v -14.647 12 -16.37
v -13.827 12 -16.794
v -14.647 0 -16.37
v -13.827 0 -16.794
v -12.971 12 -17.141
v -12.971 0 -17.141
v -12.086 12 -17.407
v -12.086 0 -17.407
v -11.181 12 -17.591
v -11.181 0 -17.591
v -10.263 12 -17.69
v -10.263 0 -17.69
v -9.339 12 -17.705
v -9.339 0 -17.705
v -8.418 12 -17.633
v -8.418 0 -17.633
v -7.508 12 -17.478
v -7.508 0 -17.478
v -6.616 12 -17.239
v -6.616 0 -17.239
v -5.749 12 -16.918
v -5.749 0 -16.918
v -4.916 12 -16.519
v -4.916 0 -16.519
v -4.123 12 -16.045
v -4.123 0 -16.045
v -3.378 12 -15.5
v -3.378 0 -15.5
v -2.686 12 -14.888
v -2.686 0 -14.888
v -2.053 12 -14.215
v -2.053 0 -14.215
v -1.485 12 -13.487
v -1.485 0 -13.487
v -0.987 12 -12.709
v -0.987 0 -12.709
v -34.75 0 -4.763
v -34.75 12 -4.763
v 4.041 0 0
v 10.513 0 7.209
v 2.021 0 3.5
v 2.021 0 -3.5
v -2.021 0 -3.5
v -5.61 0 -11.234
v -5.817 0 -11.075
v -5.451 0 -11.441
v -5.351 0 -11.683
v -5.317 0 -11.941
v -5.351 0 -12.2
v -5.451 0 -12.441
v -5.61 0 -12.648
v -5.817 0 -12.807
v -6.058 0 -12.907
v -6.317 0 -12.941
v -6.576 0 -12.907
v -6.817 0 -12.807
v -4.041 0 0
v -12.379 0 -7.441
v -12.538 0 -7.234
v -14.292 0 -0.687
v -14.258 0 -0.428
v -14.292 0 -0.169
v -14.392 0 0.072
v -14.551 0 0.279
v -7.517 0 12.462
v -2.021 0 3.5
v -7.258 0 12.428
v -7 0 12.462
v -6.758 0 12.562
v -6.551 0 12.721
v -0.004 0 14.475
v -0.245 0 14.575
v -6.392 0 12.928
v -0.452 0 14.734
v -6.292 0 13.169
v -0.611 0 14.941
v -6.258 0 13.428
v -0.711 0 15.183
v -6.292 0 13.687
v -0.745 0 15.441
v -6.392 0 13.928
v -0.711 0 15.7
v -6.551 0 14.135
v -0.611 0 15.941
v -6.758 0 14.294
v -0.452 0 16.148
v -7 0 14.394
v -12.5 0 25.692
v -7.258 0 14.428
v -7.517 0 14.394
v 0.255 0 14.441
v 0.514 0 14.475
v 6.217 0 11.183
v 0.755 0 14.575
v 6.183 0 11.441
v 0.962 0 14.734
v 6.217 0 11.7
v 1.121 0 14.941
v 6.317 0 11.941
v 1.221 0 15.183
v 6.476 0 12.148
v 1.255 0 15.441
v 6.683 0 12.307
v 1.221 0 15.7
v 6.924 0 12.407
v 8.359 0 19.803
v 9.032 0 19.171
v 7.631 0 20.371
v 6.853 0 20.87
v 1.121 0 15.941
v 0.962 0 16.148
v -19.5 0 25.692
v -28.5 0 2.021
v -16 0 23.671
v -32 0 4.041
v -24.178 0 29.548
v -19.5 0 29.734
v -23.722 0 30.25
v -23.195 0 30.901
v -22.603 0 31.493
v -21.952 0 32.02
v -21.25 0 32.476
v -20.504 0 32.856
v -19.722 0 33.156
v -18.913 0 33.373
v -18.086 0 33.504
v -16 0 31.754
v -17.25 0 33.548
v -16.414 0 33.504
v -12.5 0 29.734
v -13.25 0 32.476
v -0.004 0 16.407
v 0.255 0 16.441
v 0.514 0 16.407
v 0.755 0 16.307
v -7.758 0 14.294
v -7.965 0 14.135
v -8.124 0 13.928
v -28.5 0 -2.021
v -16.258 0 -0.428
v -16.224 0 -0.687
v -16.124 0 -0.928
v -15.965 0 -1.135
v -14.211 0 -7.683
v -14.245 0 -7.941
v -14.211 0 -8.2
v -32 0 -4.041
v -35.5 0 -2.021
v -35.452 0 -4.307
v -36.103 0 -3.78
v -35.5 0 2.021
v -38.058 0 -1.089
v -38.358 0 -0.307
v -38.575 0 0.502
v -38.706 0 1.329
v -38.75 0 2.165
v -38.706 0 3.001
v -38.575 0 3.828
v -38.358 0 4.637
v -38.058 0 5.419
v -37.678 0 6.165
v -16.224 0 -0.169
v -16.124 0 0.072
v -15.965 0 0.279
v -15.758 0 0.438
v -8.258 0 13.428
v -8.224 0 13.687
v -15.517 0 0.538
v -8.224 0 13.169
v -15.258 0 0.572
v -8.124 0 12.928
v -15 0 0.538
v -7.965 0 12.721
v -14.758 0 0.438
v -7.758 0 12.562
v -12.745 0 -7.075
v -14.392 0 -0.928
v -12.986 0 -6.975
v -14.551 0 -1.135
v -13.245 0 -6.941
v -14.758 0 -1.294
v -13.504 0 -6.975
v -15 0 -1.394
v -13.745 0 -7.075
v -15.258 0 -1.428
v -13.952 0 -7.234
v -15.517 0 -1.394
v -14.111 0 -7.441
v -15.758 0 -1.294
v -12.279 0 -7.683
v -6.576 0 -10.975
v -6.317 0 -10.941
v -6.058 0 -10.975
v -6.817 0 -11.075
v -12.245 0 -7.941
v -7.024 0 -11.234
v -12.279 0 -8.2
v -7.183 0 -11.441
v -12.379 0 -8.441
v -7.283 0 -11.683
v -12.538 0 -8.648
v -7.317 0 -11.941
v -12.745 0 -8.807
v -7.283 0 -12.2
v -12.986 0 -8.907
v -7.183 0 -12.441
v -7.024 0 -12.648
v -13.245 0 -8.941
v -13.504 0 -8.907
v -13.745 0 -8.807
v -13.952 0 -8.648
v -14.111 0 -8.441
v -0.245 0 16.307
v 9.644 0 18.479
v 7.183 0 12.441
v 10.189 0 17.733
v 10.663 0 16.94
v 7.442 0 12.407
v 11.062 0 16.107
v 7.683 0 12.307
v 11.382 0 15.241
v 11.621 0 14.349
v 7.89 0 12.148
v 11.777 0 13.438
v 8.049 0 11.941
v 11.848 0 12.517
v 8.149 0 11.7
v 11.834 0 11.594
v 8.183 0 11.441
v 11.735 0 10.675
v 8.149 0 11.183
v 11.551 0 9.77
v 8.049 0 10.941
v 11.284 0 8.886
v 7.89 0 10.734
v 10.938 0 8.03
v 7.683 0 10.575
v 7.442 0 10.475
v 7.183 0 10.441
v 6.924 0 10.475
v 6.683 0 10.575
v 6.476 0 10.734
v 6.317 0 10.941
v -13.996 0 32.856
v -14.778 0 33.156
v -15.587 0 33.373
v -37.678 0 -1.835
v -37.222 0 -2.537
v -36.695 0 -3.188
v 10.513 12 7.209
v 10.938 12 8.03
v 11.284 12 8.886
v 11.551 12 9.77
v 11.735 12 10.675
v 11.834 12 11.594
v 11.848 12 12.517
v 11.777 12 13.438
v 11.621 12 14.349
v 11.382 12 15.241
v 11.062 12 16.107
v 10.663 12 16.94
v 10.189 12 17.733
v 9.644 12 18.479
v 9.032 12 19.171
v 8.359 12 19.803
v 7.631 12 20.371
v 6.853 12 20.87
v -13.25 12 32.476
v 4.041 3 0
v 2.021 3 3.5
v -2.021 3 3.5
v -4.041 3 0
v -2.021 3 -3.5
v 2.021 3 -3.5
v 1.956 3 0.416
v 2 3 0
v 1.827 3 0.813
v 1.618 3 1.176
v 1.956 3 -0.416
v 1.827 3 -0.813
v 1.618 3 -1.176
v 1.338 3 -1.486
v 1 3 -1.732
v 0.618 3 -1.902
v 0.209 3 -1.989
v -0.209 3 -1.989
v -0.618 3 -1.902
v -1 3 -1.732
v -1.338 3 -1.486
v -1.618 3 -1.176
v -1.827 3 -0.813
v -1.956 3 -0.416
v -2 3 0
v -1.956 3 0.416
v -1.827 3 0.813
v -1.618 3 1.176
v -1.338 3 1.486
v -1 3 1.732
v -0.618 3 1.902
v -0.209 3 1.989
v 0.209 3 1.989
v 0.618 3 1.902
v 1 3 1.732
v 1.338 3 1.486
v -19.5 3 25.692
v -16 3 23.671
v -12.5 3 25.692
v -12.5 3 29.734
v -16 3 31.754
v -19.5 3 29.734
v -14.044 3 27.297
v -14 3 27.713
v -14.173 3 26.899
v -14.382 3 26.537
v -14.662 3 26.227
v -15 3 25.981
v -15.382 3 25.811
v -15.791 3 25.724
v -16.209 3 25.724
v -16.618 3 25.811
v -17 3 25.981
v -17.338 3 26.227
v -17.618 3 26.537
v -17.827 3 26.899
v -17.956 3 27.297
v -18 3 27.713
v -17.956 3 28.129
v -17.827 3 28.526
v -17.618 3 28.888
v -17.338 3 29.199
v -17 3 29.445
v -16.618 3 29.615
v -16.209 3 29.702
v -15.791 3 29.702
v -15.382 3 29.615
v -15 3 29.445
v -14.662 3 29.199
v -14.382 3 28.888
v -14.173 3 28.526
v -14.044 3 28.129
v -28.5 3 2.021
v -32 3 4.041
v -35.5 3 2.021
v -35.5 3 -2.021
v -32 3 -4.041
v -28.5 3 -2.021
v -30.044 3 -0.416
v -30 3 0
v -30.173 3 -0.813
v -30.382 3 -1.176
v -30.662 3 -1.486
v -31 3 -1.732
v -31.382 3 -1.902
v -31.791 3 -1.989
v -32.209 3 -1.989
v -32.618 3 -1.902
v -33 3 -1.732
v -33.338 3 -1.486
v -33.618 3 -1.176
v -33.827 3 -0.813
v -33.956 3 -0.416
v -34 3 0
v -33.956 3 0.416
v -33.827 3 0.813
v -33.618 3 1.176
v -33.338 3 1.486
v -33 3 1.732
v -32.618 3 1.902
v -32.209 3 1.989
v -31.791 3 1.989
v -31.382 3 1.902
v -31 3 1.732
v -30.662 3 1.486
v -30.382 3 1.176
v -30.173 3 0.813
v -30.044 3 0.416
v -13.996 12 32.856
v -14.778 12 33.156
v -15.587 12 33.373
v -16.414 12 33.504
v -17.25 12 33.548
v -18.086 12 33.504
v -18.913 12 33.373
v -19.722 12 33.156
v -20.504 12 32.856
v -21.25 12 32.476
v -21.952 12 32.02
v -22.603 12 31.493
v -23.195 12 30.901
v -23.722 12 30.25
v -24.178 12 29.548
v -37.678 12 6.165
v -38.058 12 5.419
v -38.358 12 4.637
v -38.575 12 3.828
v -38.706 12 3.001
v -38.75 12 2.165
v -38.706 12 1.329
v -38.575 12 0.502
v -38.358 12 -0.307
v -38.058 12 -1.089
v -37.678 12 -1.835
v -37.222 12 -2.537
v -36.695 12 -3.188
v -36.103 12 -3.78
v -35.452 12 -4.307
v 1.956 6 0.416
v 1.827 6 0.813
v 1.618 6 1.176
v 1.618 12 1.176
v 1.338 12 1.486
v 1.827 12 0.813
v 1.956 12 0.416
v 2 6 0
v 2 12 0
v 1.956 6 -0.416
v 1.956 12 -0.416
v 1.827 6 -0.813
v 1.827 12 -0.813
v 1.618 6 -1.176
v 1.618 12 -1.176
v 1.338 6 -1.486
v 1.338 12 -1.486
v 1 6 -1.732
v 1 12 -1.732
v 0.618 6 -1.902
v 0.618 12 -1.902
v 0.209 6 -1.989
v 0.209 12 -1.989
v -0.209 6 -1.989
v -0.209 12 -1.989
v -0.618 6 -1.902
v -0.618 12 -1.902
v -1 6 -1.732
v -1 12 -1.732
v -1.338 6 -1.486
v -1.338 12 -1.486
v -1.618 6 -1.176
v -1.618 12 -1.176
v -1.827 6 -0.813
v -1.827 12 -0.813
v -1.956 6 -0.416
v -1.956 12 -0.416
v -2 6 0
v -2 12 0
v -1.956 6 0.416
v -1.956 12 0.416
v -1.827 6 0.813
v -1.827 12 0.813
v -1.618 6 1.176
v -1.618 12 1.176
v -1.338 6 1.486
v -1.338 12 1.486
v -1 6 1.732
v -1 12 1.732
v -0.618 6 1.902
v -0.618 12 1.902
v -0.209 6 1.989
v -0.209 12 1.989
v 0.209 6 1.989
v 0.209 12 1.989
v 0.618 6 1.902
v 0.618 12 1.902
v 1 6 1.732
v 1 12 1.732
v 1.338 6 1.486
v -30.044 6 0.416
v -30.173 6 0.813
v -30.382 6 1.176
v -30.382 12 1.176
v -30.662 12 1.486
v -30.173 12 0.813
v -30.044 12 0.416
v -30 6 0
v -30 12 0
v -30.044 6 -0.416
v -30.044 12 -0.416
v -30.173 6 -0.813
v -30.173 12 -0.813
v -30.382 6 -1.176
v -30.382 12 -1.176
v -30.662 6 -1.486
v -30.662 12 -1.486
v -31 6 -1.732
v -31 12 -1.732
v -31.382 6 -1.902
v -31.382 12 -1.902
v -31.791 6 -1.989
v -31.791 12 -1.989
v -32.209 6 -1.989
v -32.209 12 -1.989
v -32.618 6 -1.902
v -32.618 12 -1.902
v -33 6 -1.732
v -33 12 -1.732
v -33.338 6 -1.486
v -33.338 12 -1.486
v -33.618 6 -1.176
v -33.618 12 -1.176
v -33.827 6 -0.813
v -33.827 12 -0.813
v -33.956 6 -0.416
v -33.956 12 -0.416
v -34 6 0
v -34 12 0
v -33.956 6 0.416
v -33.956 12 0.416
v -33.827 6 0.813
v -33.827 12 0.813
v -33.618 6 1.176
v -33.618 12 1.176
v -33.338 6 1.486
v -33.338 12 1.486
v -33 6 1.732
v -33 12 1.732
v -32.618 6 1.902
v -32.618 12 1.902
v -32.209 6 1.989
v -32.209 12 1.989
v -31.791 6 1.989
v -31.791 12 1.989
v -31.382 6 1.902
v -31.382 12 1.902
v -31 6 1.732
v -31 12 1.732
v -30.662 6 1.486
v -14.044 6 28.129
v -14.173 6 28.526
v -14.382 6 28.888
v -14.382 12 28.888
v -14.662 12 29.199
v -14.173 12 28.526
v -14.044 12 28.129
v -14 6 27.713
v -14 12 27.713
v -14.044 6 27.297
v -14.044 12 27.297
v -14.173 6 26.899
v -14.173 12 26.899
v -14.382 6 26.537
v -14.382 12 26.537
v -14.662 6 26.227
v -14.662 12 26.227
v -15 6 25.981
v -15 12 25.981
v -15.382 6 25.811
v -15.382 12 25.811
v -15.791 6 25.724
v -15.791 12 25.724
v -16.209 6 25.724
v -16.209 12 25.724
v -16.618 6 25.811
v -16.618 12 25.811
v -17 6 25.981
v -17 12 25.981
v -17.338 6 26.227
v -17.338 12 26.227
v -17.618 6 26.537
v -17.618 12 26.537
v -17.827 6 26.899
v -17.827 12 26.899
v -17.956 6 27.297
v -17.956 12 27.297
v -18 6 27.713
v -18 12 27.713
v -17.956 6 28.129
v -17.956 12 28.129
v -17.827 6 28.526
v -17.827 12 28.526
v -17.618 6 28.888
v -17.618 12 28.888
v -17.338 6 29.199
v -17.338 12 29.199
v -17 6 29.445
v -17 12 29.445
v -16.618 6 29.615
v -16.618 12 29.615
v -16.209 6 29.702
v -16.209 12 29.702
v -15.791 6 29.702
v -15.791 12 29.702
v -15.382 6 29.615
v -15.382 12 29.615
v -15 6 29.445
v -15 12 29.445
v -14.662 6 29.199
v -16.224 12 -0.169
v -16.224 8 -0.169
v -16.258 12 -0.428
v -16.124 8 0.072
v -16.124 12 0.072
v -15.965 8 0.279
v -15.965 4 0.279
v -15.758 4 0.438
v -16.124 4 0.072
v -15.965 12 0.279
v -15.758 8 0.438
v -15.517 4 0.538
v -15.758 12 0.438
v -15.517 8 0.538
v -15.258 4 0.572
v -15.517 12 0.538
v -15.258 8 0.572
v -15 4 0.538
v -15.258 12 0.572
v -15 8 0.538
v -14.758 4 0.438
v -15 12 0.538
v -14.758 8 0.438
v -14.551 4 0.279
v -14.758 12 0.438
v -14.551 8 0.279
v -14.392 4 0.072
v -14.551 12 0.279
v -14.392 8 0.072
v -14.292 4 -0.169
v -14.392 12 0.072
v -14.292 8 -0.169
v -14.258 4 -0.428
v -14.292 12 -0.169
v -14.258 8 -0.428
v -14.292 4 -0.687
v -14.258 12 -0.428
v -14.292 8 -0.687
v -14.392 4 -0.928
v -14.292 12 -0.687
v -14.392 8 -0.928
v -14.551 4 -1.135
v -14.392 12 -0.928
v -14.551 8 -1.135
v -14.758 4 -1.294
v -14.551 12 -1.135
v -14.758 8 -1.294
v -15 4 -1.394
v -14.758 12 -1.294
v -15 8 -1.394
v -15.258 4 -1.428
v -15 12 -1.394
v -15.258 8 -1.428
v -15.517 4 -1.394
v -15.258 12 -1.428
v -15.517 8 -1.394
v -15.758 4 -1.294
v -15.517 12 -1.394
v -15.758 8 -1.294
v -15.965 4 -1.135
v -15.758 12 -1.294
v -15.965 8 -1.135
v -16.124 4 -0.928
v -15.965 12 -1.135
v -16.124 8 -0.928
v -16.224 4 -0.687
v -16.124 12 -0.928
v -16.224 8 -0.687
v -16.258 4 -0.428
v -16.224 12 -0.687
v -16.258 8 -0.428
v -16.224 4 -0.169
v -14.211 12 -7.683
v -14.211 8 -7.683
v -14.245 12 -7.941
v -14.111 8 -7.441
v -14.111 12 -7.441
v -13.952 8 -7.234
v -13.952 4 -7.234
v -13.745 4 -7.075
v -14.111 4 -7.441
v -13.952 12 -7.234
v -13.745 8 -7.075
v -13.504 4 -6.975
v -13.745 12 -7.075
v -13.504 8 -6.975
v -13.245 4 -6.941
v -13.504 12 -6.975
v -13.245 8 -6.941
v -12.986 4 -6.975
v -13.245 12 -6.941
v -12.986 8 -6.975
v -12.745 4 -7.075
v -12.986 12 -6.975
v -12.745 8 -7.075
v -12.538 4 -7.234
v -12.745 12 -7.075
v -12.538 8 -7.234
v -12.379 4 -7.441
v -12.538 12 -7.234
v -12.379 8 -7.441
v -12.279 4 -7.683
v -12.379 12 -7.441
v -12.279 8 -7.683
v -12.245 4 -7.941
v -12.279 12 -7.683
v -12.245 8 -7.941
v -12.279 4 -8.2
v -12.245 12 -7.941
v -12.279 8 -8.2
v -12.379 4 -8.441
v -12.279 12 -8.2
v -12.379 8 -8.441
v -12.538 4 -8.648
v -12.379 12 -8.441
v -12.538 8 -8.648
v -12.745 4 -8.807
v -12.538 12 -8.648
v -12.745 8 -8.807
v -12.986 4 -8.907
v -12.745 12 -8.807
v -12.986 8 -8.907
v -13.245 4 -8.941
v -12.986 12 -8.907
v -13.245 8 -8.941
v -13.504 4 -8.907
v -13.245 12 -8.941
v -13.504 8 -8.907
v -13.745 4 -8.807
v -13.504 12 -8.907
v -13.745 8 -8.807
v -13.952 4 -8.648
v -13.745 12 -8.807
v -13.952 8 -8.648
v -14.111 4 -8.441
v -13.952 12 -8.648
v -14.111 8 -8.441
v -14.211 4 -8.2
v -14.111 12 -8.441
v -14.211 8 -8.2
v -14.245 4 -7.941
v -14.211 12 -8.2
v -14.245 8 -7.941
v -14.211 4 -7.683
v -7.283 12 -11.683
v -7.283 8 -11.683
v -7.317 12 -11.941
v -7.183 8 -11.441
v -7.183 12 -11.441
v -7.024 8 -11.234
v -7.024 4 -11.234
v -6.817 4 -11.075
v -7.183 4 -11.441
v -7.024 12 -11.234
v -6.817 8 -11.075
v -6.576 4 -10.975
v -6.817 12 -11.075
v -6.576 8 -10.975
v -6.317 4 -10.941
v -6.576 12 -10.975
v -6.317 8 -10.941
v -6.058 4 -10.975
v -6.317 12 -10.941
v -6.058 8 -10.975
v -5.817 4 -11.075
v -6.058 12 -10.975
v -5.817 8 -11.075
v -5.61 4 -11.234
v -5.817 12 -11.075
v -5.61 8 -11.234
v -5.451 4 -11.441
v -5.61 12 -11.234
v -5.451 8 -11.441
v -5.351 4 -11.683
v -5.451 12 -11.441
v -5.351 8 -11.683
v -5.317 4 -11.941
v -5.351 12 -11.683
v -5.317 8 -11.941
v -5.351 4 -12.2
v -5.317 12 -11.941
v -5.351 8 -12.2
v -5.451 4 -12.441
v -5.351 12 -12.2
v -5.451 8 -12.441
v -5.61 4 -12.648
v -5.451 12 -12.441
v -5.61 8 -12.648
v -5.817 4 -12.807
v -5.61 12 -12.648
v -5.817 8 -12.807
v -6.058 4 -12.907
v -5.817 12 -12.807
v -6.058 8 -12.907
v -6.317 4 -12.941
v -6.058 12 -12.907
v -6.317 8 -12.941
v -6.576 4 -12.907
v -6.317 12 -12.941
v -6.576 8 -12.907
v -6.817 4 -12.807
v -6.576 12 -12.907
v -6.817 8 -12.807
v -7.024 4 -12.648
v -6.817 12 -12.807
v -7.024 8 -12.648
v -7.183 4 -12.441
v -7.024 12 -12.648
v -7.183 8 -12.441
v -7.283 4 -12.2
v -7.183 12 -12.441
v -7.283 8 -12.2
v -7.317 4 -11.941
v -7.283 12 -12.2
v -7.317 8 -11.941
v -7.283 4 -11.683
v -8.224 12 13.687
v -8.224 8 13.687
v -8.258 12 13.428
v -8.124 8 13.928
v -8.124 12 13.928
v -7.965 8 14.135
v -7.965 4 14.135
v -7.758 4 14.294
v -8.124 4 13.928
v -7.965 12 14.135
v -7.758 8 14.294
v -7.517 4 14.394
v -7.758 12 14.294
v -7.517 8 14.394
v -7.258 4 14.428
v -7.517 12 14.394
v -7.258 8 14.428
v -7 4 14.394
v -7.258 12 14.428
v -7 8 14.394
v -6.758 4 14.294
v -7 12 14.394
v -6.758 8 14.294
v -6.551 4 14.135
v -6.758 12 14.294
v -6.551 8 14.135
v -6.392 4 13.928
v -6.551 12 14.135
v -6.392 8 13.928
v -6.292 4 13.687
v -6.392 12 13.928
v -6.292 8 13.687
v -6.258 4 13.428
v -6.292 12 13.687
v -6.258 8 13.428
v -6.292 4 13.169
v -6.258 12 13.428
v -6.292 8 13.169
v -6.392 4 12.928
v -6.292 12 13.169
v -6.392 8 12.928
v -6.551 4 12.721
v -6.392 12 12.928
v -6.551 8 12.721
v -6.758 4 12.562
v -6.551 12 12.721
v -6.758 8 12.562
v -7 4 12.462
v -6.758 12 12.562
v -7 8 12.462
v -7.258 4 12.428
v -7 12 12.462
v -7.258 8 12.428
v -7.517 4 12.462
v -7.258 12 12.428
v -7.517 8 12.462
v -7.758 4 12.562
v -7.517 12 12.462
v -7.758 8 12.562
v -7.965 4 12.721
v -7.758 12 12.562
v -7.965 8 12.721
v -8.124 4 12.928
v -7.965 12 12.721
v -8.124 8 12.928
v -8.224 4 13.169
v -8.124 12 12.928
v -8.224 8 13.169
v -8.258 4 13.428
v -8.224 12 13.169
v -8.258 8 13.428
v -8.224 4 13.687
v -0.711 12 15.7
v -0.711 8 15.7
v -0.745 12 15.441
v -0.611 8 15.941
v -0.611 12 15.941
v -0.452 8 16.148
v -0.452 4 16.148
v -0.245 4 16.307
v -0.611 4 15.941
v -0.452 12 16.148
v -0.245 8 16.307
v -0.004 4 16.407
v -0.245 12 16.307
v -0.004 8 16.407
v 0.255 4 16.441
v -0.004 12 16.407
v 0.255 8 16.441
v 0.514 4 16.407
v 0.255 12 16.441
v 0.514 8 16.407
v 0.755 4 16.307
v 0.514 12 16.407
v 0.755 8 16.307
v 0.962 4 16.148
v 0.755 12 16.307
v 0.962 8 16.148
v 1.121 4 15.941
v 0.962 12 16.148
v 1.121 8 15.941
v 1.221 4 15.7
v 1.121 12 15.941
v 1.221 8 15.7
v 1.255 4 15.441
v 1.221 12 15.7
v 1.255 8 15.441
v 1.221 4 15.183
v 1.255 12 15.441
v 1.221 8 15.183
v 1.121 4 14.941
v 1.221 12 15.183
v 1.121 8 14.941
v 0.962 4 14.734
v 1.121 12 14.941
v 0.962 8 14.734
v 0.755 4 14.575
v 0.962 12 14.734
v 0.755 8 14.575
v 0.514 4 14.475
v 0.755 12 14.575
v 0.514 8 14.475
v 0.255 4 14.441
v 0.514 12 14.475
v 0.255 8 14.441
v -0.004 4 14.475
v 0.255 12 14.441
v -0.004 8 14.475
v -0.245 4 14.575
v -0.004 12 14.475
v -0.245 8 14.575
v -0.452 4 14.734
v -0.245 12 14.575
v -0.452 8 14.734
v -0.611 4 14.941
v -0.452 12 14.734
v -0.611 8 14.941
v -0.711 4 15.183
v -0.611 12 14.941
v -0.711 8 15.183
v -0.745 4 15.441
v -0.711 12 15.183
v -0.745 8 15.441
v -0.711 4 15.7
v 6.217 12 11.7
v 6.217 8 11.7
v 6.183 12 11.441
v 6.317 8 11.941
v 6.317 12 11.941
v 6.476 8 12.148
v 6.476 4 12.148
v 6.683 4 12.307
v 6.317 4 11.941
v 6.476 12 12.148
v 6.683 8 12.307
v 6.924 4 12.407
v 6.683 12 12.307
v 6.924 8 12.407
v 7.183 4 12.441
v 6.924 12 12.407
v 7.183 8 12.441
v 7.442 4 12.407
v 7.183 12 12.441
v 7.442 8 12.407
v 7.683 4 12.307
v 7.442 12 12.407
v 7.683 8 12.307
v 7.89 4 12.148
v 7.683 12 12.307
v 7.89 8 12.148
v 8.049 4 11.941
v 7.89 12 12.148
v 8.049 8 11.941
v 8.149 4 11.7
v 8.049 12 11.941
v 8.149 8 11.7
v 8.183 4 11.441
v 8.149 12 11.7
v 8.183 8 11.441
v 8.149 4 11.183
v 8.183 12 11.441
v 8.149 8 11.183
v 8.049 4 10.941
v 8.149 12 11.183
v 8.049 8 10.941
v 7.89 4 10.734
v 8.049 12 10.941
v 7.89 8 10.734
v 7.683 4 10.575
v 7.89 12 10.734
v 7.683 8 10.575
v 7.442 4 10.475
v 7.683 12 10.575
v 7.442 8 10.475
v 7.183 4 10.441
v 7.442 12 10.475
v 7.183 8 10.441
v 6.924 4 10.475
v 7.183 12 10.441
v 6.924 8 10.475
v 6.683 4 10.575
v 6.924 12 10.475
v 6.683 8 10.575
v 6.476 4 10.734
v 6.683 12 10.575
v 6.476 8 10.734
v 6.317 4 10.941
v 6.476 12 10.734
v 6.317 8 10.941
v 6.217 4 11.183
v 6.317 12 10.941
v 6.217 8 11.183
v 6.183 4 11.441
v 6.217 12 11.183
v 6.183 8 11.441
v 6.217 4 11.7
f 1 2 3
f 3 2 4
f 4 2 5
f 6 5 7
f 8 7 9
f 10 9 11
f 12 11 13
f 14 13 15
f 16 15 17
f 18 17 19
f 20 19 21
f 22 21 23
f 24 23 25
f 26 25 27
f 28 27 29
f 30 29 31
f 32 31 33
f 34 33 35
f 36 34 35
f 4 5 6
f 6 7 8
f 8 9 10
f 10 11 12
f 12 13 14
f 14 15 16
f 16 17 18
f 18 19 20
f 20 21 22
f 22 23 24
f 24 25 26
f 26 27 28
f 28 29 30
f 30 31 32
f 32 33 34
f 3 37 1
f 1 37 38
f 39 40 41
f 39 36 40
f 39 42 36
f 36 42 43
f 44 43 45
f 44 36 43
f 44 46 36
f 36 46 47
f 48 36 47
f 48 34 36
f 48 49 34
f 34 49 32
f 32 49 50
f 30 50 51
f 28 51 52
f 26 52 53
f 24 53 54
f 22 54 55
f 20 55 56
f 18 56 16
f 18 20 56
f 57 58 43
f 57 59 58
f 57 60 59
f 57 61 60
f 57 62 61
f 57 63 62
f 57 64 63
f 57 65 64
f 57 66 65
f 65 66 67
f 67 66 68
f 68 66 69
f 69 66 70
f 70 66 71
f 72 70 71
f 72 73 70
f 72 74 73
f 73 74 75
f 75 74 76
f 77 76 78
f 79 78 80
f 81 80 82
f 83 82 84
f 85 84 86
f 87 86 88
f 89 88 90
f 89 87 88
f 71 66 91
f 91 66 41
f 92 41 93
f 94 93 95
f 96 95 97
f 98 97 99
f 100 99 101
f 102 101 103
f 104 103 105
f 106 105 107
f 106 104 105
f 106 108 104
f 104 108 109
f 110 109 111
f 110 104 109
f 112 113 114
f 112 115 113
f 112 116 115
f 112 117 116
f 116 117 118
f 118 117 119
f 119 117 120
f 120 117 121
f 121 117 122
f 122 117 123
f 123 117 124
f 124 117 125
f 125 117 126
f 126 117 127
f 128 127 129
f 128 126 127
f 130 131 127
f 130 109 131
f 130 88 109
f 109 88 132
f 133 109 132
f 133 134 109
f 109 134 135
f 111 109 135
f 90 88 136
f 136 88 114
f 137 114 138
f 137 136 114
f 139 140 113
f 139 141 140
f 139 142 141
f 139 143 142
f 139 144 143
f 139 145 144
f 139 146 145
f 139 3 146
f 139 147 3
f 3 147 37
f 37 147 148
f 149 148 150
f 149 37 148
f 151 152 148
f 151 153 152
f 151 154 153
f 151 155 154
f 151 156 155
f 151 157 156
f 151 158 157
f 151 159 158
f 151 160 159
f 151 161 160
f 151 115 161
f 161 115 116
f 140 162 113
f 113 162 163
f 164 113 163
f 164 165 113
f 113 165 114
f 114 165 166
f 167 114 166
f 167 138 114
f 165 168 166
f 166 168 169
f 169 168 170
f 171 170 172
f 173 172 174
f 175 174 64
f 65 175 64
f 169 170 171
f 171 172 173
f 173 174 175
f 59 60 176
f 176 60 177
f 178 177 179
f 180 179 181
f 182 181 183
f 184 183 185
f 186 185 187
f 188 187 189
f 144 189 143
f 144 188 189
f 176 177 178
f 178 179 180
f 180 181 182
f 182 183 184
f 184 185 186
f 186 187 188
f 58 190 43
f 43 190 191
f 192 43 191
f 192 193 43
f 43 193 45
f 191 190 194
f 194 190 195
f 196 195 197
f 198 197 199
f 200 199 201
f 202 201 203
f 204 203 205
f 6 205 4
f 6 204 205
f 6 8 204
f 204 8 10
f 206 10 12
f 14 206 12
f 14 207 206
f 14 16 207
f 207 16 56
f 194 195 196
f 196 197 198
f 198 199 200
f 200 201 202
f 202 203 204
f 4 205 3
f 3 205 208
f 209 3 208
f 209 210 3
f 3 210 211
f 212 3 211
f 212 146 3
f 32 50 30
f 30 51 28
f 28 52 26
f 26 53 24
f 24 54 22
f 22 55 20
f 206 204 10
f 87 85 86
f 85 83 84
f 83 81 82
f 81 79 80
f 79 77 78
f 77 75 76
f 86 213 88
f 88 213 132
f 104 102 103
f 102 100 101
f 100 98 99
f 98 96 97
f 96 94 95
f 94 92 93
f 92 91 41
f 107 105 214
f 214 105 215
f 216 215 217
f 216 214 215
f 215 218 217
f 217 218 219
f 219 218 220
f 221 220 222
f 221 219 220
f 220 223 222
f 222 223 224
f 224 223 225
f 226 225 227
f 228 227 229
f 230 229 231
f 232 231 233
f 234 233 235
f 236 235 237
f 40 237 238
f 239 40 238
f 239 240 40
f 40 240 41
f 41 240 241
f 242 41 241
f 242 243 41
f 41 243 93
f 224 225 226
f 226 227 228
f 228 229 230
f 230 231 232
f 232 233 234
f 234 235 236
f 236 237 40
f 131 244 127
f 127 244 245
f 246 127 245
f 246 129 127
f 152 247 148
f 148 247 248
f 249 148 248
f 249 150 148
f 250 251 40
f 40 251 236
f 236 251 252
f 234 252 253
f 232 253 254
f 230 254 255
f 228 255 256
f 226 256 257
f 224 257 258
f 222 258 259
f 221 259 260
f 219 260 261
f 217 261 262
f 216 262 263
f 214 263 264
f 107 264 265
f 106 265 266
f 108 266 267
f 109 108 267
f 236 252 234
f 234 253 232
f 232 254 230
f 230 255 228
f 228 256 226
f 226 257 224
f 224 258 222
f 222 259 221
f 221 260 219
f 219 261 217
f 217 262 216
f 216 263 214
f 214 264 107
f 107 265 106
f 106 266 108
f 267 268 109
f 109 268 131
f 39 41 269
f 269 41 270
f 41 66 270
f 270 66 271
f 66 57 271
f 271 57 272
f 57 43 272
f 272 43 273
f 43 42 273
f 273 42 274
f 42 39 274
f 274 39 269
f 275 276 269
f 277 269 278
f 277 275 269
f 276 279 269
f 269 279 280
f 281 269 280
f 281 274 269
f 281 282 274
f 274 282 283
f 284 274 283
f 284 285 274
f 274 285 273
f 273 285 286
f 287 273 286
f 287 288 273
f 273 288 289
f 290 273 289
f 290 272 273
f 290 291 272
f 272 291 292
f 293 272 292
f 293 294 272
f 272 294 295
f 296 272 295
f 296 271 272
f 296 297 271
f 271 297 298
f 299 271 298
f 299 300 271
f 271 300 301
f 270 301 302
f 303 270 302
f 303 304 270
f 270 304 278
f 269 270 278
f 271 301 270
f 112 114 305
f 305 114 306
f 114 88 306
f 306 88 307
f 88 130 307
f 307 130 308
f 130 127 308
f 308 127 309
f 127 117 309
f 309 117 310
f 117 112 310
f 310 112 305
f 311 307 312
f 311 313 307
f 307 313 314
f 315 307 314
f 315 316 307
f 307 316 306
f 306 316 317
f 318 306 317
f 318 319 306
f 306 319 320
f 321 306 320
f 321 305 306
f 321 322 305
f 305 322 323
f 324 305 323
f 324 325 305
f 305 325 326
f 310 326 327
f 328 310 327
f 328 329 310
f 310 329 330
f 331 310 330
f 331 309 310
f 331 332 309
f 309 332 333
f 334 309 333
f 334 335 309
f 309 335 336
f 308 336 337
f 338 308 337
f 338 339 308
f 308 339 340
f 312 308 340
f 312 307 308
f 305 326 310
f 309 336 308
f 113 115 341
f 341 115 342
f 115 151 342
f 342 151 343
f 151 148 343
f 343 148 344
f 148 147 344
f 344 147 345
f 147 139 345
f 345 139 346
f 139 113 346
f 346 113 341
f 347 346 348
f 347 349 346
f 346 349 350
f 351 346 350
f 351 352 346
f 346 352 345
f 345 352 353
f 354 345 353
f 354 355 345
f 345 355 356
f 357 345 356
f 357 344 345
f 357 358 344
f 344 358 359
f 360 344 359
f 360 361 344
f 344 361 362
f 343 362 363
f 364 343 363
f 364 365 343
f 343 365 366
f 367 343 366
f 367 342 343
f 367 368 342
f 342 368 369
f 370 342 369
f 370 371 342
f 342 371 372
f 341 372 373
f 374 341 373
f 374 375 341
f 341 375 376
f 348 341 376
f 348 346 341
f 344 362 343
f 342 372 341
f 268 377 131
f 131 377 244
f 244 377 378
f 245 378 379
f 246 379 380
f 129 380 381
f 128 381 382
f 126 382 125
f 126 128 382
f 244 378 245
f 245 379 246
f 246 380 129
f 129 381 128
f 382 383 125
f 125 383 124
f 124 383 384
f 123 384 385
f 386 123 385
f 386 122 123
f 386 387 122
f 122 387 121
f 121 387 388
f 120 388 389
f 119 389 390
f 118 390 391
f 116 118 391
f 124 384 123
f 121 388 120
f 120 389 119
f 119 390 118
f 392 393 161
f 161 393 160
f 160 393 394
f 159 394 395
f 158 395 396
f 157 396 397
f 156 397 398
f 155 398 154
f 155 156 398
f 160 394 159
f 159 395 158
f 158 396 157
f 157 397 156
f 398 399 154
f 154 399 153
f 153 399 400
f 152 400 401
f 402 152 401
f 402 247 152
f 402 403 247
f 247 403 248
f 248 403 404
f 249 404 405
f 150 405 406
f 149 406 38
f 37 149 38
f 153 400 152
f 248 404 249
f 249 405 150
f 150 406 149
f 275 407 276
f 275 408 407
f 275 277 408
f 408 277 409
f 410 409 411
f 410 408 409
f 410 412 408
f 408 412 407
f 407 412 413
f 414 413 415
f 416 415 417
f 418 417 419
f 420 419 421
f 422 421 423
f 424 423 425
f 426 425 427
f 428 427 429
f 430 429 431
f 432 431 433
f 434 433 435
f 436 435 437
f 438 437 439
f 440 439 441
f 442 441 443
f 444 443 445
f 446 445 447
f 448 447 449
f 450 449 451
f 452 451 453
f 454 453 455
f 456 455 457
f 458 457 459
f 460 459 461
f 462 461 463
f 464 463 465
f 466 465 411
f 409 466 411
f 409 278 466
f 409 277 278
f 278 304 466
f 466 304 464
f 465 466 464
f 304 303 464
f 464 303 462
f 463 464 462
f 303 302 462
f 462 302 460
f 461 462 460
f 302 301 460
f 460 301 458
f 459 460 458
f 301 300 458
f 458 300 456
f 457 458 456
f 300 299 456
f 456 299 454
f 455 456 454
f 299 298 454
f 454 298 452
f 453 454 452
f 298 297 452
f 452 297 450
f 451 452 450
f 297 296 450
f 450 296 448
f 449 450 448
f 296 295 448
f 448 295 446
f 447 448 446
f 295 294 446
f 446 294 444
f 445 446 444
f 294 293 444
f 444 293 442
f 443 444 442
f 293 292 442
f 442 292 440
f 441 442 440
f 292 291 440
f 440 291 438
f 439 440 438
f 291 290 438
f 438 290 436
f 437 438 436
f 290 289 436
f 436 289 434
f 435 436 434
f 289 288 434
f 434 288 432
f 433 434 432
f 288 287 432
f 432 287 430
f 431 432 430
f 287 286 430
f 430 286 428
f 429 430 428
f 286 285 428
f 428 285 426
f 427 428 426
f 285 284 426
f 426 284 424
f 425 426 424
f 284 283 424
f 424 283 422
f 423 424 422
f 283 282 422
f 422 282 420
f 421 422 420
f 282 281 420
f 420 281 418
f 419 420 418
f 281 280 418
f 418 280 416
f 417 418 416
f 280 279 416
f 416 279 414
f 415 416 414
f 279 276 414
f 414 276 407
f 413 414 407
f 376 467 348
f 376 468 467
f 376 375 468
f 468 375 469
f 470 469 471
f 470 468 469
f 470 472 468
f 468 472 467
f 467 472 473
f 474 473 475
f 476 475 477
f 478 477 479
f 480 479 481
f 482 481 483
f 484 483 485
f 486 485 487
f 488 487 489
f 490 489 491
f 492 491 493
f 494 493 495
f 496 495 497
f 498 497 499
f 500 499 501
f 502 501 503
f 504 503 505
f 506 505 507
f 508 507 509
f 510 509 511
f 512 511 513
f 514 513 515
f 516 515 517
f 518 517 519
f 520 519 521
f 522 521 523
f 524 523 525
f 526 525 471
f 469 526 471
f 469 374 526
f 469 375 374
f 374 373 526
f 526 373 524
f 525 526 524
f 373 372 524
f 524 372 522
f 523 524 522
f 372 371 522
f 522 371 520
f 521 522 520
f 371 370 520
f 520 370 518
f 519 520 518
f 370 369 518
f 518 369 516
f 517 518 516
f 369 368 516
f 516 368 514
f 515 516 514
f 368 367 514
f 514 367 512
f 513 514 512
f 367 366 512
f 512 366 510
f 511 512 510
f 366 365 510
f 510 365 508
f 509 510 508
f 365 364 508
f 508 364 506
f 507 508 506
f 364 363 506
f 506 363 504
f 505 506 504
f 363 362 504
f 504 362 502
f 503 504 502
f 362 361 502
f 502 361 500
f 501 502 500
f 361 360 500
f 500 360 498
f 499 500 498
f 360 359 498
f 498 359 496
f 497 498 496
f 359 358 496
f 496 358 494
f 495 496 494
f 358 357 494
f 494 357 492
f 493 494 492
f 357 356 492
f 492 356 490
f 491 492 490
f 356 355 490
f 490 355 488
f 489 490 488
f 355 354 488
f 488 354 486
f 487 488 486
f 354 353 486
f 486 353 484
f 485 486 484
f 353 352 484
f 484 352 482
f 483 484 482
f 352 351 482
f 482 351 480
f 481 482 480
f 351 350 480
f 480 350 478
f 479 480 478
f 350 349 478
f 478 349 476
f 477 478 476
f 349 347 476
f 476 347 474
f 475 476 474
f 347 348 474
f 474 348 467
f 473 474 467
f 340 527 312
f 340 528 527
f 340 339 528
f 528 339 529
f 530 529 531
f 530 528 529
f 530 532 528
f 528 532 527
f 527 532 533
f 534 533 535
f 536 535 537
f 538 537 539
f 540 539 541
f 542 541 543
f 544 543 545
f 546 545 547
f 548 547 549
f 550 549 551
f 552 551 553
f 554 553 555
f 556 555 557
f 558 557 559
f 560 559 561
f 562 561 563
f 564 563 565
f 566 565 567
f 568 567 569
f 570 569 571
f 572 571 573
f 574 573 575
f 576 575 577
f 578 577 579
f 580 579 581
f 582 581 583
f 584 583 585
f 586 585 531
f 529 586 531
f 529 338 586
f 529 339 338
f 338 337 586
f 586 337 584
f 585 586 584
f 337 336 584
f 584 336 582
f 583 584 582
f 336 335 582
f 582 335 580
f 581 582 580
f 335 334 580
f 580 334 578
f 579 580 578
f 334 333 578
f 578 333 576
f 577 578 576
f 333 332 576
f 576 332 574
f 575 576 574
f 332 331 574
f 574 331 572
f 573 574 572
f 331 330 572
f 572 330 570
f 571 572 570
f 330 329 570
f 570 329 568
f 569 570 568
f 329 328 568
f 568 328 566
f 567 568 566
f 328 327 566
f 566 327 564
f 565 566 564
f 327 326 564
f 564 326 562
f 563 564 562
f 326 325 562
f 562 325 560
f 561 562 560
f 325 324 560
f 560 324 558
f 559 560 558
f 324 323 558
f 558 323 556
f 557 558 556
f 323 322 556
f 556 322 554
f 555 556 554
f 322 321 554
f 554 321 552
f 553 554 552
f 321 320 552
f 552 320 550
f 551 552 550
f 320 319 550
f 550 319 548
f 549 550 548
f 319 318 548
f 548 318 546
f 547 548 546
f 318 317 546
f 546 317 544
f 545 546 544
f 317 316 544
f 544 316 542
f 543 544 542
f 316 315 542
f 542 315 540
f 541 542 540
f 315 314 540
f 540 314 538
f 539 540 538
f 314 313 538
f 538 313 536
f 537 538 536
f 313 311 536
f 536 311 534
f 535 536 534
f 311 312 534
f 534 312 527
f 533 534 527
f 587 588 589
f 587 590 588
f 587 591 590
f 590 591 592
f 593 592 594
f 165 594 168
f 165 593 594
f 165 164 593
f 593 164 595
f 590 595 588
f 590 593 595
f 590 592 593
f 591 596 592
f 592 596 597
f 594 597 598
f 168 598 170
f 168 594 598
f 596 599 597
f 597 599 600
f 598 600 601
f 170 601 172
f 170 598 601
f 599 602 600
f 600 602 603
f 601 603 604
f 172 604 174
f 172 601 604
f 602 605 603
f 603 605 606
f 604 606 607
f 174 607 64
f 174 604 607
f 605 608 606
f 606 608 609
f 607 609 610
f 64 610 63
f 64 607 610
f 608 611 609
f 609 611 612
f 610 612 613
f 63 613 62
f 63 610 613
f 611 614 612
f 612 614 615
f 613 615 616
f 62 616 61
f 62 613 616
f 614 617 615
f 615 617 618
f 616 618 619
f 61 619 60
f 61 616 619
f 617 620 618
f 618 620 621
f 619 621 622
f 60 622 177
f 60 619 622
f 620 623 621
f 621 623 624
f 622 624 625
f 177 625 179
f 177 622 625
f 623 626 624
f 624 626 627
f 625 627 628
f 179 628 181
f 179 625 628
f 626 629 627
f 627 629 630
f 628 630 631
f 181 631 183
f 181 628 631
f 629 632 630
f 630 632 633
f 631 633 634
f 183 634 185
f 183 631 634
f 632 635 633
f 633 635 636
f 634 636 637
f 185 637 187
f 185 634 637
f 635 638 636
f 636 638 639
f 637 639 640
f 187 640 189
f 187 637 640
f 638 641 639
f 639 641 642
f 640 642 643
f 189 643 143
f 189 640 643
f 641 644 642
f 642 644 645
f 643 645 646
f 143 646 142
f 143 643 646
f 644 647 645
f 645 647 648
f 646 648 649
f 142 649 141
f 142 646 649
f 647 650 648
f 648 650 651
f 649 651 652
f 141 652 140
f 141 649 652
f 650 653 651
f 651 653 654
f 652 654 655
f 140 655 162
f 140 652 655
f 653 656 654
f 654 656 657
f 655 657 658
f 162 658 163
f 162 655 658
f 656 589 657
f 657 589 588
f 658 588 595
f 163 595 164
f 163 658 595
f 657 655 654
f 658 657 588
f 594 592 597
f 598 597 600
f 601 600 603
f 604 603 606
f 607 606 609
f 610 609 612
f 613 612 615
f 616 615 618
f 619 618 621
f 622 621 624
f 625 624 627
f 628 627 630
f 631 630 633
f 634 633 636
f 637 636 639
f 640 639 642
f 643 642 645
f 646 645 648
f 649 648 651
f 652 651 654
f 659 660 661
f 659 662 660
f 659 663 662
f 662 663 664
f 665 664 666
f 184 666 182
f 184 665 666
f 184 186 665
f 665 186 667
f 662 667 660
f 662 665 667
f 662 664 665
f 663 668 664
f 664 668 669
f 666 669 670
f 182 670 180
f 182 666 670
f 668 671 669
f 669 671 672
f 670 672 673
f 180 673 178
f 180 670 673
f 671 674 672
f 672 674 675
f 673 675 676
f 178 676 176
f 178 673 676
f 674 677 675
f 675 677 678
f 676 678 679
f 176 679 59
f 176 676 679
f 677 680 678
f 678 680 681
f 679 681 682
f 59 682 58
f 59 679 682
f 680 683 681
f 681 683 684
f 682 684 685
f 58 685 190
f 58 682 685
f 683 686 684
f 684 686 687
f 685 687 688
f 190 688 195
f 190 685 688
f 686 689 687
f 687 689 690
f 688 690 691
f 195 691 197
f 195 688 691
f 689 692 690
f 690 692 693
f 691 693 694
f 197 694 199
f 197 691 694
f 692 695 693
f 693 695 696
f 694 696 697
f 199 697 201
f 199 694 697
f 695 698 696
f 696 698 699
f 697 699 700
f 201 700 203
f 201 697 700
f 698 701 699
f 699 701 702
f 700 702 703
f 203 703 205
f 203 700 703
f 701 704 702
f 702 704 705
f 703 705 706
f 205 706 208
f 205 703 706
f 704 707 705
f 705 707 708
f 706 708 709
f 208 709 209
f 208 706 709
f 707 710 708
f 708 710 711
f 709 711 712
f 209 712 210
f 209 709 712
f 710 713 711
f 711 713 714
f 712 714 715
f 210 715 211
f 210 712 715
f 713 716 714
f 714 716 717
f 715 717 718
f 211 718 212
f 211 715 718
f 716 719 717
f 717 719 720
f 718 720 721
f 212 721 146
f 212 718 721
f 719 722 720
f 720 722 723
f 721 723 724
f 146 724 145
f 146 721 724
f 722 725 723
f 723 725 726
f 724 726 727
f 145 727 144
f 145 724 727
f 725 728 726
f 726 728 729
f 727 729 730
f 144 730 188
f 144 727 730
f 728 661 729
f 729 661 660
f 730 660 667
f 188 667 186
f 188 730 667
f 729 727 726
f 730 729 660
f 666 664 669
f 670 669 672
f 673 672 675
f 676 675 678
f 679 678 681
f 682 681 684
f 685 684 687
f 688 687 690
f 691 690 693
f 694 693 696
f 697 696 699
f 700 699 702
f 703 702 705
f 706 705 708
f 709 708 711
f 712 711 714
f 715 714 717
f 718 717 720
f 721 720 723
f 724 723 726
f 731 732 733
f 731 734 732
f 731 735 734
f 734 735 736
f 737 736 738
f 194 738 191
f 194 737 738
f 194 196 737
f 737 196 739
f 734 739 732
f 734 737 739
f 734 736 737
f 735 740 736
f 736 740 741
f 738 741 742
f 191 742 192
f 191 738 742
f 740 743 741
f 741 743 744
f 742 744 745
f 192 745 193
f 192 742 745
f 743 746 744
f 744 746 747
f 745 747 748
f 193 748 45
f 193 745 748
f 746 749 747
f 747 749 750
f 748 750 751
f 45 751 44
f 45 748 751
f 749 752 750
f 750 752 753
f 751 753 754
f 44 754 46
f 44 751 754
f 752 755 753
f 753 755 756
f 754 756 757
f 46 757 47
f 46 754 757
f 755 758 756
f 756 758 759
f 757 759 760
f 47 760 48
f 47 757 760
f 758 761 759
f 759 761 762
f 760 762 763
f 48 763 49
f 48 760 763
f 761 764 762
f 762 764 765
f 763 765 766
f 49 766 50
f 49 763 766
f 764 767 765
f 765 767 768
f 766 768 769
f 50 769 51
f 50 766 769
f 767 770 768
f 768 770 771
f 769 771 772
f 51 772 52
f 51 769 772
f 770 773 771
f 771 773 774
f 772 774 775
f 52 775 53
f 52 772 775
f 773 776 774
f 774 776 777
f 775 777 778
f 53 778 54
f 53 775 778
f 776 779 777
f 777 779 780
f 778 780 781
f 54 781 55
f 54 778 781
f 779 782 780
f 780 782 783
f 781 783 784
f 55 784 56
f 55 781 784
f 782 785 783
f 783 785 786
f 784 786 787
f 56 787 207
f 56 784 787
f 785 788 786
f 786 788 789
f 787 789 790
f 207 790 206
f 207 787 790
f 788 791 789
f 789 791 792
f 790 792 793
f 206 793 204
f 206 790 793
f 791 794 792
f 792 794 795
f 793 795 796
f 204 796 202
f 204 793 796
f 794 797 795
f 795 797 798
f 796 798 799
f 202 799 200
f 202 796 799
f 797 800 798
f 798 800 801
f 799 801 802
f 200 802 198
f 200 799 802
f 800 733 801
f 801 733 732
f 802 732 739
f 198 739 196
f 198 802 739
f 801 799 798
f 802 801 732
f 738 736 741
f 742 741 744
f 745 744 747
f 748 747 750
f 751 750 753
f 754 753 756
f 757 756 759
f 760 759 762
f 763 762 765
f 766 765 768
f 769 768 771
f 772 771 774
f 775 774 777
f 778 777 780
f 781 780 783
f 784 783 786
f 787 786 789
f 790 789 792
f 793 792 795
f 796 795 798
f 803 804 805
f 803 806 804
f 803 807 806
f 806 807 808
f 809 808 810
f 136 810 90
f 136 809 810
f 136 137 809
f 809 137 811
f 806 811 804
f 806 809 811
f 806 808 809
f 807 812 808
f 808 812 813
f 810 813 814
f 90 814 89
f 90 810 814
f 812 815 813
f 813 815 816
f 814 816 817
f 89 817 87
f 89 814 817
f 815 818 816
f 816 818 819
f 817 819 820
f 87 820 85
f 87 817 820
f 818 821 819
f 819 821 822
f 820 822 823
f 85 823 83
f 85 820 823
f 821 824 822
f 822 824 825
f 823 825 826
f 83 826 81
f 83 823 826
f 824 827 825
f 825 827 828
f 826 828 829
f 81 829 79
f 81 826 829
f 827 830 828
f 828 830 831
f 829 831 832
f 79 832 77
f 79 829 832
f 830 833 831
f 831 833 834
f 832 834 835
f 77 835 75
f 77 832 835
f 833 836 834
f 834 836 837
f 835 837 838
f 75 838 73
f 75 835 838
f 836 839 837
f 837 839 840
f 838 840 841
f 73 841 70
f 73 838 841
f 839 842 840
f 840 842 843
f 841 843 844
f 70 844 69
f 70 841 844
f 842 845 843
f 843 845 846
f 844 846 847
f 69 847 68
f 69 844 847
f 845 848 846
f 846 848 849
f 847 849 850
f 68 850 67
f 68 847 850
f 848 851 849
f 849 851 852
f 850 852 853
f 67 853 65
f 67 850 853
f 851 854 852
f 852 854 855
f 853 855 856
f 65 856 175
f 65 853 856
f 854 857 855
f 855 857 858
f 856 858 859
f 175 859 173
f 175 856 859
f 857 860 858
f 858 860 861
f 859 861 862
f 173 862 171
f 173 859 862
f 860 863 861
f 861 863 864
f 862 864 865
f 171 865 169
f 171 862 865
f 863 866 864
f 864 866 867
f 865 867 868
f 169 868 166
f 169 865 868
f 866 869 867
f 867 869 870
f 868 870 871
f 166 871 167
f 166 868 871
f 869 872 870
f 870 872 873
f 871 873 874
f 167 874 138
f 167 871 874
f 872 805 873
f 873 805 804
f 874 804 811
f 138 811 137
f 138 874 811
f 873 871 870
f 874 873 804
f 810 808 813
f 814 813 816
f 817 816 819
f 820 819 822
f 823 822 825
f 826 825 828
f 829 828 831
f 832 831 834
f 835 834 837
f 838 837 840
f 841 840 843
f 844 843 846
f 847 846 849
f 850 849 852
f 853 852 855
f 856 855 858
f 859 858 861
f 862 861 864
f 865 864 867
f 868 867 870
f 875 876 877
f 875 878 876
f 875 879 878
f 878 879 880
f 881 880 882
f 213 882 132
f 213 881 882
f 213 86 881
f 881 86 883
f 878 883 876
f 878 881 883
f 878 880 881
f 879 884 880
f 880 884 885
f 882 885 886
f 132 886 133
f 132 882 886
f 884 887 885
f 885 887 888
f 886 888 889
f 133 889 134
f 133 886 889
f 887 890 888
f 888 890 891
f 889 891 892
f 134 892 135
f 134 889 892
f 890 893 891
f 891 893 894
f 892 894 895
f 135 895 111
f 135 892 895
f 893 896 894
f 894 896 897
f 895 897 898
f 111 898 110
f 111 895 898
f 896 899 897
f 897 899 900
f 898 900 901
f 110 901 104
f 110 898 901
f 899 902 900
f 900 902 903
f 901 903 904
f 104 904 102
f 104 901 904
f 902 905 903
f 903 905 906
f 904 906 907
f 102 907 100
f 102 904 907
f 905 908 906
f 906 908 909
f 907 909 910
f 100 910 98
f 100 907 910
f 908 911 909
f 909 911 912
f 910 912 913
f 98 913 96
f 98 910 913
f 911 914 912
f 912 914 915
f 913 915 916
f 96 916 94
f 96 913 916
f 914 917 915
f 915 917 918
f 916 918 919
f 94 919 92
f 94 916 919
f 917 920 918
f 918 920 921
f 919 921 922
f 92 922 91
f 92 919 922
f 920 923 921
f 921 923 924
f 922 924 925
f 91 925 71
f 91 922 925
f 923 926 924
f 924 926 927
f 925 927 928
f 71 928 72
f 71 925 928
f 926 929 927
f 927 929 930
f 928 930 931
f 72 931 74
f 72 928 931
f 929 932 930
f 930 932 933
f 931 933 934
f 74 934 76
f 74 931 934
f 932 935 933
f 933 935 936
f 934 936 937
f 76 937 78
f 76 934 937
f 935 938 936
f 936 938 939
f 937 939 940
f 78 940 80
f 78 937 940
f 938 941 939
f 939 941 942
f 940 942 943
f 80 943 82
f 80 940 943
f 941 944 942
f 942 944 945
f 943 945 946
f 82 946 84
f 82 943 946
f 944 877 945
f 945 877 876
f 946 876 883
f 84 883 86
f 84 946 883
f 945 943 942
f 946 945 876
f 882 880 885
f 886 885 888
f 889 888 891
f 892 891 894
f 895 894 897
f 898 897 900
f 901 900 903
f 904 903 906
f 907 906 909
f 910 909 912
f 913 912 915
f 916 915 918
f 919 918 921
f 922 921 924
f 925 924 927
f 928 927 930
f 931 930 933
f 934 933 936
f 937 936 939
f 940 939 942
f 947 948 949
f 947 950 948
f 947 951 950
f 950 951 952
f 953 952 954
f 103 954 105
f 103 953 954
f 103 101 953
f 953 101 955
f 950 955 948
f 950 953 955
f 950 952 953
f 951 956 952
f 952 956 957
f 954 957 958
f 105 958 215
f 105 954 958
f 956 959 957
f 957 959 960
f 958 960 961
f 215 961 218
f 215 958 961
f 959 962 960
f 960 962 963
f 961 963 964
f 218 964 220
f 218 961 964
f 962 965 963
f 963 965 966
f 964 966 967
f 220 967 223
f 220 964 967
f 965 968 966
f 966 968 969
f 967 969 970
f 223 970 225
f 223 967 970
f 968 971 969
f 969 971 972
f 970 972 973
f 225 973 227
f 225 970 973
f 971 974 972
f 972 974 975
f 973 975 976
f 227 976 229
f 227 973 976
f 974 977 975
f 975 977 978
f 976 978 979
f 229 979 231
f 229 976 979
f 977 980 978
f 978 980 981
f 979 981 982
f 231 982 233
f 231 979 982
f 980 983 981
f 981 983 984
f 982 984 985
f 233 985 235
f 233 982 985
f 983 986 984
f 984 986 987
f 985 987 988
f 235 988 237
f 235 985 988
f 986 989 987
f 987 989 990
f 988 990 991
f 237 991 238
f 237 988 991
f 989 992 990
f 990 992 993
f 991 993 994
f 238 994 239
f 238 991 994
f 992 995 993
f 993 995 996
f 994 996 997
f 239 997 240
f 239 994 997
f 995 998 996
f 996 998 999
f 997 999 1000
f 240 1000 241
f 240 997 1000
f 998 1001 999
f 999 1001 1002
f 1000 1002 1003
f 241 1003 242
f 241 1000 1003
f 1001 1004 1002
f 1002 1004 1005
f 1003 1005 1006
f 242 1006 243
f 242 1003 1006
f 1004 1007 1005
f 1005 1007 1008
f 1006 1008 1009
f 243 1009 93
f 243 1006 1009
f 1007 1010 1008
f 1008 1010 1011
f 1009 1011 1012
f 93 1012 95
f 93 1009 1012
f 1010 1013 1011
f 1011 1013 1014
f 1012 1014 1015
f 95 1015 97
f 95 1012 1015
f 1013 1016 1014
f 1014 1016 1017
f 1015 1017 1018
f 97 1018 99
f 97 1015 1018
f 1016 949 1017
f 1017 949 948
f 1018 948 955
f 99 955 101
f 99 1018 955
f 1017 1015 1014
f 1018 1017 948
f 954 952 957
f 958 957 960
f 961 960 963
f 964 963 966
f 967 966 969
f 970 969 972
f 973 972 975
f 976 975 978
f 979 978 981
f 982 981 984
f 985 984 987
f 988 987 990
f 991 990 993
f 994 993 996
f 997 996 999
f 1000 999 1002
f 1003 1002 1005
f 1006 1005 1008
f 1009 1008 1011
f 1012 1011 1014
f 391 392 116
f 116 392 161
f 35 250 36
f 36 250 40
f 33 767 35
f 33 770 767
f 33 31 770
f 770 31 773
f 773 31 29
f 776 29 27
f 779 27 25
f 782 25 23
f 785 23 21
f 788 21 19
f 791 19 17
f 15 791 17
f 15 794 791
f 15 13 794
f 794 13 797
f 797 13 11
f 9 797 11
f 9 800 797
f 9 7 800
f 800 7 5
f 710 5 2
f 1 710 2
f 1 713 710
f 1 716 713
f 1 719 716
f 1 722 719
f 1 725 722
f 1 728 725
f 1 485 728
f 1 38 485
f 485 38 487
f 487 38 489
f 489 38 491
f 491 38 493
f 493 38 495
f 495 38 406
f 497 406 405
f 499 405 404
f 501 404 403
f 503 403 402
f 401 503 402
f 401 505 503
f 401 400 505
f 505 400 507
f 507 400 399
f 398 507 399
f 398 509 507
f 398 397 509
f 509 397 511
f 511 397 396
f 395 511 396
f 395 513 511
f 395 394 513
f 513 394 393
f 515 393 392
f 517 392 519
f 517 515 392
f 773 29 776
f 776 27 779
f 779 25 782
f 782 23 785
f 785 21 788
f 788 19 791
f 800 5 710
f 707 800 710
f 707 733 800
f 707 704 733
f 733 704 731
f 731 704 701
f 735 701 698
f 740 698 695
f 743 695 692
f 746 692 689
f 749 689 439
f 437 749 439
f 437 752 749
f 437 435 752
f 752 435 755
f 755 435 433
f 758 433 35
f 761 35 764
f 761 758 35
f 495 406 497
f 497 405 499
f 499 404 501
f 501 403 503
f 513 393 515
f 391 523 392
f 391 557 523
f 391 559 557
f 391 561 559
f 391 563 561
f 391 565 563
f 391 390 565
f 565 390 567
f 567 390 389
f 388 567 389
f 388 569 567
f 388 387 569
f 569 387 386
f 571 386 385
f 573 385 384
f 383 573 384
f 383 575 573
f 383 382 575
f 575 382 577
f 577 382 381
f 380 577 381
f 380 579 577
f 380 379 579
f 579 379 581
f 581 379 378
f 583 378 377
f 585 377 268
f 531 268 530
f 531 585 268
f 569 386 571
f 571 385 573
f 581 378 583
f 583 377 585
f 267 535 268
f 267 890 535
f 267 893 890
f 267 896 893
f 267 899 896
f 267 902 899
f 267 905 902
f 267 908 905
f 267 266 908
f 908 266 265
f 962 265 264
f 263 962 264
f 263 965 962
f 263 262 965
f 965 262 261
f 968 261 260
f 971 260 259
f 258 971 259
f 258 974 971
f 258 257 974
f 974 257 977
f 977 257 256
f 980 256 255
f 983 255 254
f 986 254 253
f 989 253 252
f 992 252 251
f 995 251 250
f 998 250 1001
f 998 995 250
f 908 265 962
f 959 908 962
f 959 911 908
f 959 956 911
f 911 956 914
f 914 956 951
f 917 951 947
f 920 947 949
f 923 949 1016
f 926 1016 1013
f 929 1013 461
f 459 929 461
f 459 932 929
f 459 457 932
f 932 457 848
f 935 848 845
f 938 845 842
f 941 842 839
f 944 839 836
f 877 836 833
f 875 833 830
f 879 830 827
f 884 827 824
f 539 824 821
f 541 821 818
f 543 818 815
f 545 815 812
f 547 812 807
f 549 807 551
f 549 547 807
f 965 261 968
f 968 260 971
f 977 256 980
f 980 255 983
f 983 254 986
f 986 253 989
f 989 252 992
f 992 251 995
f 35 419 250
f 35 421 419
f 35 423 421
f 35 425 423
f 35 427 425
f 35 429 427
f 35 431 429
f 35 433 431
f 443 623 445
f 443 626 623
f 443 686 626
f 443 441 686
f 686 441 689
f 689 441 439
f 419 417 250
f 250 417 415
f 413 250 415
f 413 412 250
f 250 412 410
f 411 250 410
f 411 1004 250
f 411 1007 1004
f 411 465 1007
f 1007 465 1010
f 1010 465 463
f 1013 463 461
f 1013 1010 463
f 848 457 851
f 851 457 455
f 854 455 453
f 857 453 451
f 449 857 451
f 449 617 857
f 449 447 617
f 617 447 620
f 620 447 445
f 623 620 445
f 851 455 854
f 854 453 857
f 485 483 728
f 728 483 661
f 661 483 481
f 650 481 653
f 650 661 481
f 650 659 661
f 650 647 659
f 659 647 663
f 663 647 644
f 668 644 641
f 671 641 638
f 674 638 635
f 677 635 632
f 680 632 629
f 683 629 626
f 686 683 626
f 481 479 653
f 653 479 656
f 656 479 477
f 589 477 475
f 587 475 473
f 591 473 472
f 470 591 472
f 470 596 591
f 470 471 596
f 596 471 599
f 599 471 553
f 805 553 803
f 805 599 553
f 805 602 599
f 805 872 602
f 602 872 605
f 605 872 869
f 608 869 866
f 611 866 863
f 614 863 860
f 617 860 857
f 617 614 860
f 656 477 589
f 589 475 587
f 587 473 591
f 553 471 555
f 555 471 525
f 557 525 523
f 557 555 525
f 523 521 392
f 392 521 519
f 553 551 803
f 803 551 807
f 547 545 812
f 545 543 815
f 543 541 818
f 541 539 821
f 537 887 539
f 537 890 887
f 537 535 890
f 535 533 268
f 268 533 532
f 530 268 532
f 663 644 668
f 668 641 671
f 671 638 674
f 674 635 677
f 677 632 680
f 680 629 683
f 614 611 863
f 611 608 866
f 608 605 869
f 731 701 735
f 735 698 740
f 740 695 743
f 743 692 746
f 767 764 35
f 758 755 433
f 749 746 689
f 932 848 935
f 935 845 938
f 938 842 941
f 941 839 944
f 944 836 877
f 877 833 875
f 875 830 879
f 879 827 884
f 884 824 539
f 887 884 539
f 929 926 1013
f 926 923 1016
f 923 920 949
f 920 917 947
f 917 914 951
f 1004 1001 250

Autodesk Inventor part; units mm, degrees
ref_plane "YZ Plane" through (0, 0, 0) normal (1, 0, 0) x (0, 1, 0)
ref_plane "XZ Plane" through (0, 0, 0) normal (0, 1, 0) x (-1, 0, 0)
ref_plane "XY Plane" through (0, 0, 0) normal (0, 0, 1) x (1, 0, 0)
sketch "Esquisse1" plane through (0, 0, 0) normal (0, 1, 0) x (-1, 0, 0)
  line L0 (0, 0) -> (32, 0) construction
  line L1 (32, 0) -> (16, 27.7128) construction
  line L2 (16, 27.7128) -> (0, 0) construction
  line L3 (-17.9982, -10.3913) -> (15.6322, 9.0252) construction
  line L4 (11.2583, 6.5) -> (7.2583, 13.4282) construction
  line L5 (11.2583, 6.5) -> (-19.9186, -11.5) construction
  line L6 (-19.9186, -11.5) -> (-26.6686, 0.1913) construction
  line L7 (-26.6686, 0.1913) -> (-21.0394, 3.4413) construction
  line L8 (-21.0394, 3.4413) -> (-14.1112, 7.4413) construction
  line L9 (-14.1112, 7.4413) -> (-7.183, 11.4413) construction
  line L10 (-7.183, 11.4413) -> (-0.2548, 15.4413) construction
  circle A0 centre (-14.1112, 7.4413) radius 1 construction
  circle A1 centre (-7.183, 11.4413) radius 1
  circle A2 centre (-0.2548, 15.4413) radius 1
  circle A3 centre (7.2583, 13.4282) radius 1
  circle A4 centre (-21.0394, 3.4413) radius 1 construction
  circle A5 centre (-0.6112, -15.9413) radius 1 construction
  circle A6 centre (6.317, -11.9413) radius 1
  circle A7 centre (13.2452, -7.9413) radius 1
  circle A8 centre (15.2583, -0.4282) radius 1
  circle A9 centre (-7.5394, -19.9413) radius 1 construction
  circle A10 centre (-19.9186, -11.5) radius 11.6 construction
  line L11 (32, 0) -> (38.9282, 4) construction
  line L12 (36.0415, 0) -> (34.0207, -3.5) construction
  line L13 (34.0207, -3.5) -> (29.9793, -3.5) construction
  line L14 (29.9793, -3.5) -> (27.9585, 0) construction
  line L15 (27.9585, 0) -> (29.9793, 3.5) construction
  line L16 (29.9793, 3.5) -> (34.0207, 3.5) construction
  line L17 (34.0207, 3.5) -> (36.0415, 0) construction
  line L18 (34.0207, 3.5) -> (34.0207, -3.5) construction
  circle A11 centre (16, 27.7128) radius 2
  circle A12 centre (32, 0) radius 2
  line L19 (32, 0) -> (38.9282, 4) construction
  circle A13 centre (0, 0) radius 2
  line L20 (0, 0) -> (11.2583, 6.5) construction
  line L21 (-15.5131, 15.8695) -> (20.1782, 36.476)
  line L22 (20.1782, 36.476) -> (41.6782, -0.7631)
  line L23 (41.6782, -0.7631) -> (5.9869, -21.3695)
  line L24 (-7.183, 11.4413) -> (-11.183, 18.3695) construction
  line L25 (6.317, -11.9413) -> (10.317, -18.8695) construction
  line L26 (6.317, -11.9413) -> (1.9869, -14.4413) construction
  line L27 (-15.5131, 15.8695) -> (5.9869, -21.3695)
  dimension "d0" = 32
  dimension "d1" = 32
  dimension "d2" = 60
  dimension "d4" = 8
  dimension "d6" = 36
  dimension "d7" = 13.5
  dimension "d8" = 6.5
  dimension "d9" = 8
  dimension "d10" = 8
  dimension "d11" = 8
  dimension "d13" = 2
  dimension "d14" = 11.6
  dimension "d15" = 8
  dimension "d16" = 7
  dimension "d17" = 4
  dimension "d19" = 8
  dimension "d69" = 210
  dimension "d70" = 13
  dimension "d83" = 8
  dimension "d84" = 8
  dimension "d85" = 5
extrude "Extrusion7" add sketch "Esquisse1" along normal blind 12
sketch "Esquisse9" plane through (0, 0, 0) normal (0, -1, 0) x (1, 0, 0)
  circle A0 centre (0, 0) radius 2 projected
  circle A1 centre (-32, 0) radius 2 projected
  circle A2 centre (-16, 27.7128) radius 2 projected
  line L0 (-41.6782, -0.7631) -> (-5.9869, -21.3695) projected
  line L1 (18.1112, 14.3695) -> (-3.3888, -22.8695) projected
  line L2 (15.5131, 15.8695) -> (-20.1782, 36.476) projected
  line L3 (-19.5, 25.6921) -> (-19.5, 29.7335)
  line L4 (-19.5, 29.7335) -> (-16, 31.7543)
  line L5 (-16, 31.7543) -> (-12.5, 29.7335)
  line L6 (-12.5, 29.7335) -> (-12.5, 25.6921)
  line L7 (-12.5, 25.6921) -> (-16, 23.6714)
  line L8 (-16, 23.6714) -> (-19.5, 25.6921)
  line L9 (-28.5, 2.0207) -> (-28.5, -2.0207)
  line L10 (-28.5, -2.0207) -> (-32, -4.0415)
  line L11 (-32, -4.0415) -> (-35.5, -2.0207)
  line L12 (-35.5, -2.0207) -> (-35.5, 2.0207)
  line L13 (-35.5, 2.0207) -> (-32, 4.0415)
  line L14 (-32, 4.0415) -> (-28.5, 2.0207)
  line L15 (-19.5, 25.6921) -> (-12.5, 25.6921) construction
  line L16 (4.0415, 0) -> (2.0207, -3.5)
  line L17 (2.0207, -3.5) -> (-2.0207, -3.5)
  line L18 (-2.0207, -3.5) -> (-4.0415, 0)
  line L19 (-4.0415, 0) -> (-2.0207, 3.5)
  line L20 (-2.0207, 3.5) -> (2.0207, 3.5)
  line L21 (2.0207, 3.5) -> (4.0415, 0)
  point P0 (-3.3888, -22.8695)
  dimension "d75" = 7
fillet "Congé15" radius 8 1 edges at (-41.6782, 6, -0.7631)
fillet "Congé16" radius 8 1 edges at (-20.1782, 6, 36.476)
extrude "Extrusion8" cut sketch "Esquisse9" against normal blind 3
fillet "Congé17" radius 10 1 edges at (15.5131, 6, 15.8695)
fillet "Congé18" radius 10 1 edges at (-5.9869, 6, -21.3695)
properties part number "joint3+ax12imprint_v3"
